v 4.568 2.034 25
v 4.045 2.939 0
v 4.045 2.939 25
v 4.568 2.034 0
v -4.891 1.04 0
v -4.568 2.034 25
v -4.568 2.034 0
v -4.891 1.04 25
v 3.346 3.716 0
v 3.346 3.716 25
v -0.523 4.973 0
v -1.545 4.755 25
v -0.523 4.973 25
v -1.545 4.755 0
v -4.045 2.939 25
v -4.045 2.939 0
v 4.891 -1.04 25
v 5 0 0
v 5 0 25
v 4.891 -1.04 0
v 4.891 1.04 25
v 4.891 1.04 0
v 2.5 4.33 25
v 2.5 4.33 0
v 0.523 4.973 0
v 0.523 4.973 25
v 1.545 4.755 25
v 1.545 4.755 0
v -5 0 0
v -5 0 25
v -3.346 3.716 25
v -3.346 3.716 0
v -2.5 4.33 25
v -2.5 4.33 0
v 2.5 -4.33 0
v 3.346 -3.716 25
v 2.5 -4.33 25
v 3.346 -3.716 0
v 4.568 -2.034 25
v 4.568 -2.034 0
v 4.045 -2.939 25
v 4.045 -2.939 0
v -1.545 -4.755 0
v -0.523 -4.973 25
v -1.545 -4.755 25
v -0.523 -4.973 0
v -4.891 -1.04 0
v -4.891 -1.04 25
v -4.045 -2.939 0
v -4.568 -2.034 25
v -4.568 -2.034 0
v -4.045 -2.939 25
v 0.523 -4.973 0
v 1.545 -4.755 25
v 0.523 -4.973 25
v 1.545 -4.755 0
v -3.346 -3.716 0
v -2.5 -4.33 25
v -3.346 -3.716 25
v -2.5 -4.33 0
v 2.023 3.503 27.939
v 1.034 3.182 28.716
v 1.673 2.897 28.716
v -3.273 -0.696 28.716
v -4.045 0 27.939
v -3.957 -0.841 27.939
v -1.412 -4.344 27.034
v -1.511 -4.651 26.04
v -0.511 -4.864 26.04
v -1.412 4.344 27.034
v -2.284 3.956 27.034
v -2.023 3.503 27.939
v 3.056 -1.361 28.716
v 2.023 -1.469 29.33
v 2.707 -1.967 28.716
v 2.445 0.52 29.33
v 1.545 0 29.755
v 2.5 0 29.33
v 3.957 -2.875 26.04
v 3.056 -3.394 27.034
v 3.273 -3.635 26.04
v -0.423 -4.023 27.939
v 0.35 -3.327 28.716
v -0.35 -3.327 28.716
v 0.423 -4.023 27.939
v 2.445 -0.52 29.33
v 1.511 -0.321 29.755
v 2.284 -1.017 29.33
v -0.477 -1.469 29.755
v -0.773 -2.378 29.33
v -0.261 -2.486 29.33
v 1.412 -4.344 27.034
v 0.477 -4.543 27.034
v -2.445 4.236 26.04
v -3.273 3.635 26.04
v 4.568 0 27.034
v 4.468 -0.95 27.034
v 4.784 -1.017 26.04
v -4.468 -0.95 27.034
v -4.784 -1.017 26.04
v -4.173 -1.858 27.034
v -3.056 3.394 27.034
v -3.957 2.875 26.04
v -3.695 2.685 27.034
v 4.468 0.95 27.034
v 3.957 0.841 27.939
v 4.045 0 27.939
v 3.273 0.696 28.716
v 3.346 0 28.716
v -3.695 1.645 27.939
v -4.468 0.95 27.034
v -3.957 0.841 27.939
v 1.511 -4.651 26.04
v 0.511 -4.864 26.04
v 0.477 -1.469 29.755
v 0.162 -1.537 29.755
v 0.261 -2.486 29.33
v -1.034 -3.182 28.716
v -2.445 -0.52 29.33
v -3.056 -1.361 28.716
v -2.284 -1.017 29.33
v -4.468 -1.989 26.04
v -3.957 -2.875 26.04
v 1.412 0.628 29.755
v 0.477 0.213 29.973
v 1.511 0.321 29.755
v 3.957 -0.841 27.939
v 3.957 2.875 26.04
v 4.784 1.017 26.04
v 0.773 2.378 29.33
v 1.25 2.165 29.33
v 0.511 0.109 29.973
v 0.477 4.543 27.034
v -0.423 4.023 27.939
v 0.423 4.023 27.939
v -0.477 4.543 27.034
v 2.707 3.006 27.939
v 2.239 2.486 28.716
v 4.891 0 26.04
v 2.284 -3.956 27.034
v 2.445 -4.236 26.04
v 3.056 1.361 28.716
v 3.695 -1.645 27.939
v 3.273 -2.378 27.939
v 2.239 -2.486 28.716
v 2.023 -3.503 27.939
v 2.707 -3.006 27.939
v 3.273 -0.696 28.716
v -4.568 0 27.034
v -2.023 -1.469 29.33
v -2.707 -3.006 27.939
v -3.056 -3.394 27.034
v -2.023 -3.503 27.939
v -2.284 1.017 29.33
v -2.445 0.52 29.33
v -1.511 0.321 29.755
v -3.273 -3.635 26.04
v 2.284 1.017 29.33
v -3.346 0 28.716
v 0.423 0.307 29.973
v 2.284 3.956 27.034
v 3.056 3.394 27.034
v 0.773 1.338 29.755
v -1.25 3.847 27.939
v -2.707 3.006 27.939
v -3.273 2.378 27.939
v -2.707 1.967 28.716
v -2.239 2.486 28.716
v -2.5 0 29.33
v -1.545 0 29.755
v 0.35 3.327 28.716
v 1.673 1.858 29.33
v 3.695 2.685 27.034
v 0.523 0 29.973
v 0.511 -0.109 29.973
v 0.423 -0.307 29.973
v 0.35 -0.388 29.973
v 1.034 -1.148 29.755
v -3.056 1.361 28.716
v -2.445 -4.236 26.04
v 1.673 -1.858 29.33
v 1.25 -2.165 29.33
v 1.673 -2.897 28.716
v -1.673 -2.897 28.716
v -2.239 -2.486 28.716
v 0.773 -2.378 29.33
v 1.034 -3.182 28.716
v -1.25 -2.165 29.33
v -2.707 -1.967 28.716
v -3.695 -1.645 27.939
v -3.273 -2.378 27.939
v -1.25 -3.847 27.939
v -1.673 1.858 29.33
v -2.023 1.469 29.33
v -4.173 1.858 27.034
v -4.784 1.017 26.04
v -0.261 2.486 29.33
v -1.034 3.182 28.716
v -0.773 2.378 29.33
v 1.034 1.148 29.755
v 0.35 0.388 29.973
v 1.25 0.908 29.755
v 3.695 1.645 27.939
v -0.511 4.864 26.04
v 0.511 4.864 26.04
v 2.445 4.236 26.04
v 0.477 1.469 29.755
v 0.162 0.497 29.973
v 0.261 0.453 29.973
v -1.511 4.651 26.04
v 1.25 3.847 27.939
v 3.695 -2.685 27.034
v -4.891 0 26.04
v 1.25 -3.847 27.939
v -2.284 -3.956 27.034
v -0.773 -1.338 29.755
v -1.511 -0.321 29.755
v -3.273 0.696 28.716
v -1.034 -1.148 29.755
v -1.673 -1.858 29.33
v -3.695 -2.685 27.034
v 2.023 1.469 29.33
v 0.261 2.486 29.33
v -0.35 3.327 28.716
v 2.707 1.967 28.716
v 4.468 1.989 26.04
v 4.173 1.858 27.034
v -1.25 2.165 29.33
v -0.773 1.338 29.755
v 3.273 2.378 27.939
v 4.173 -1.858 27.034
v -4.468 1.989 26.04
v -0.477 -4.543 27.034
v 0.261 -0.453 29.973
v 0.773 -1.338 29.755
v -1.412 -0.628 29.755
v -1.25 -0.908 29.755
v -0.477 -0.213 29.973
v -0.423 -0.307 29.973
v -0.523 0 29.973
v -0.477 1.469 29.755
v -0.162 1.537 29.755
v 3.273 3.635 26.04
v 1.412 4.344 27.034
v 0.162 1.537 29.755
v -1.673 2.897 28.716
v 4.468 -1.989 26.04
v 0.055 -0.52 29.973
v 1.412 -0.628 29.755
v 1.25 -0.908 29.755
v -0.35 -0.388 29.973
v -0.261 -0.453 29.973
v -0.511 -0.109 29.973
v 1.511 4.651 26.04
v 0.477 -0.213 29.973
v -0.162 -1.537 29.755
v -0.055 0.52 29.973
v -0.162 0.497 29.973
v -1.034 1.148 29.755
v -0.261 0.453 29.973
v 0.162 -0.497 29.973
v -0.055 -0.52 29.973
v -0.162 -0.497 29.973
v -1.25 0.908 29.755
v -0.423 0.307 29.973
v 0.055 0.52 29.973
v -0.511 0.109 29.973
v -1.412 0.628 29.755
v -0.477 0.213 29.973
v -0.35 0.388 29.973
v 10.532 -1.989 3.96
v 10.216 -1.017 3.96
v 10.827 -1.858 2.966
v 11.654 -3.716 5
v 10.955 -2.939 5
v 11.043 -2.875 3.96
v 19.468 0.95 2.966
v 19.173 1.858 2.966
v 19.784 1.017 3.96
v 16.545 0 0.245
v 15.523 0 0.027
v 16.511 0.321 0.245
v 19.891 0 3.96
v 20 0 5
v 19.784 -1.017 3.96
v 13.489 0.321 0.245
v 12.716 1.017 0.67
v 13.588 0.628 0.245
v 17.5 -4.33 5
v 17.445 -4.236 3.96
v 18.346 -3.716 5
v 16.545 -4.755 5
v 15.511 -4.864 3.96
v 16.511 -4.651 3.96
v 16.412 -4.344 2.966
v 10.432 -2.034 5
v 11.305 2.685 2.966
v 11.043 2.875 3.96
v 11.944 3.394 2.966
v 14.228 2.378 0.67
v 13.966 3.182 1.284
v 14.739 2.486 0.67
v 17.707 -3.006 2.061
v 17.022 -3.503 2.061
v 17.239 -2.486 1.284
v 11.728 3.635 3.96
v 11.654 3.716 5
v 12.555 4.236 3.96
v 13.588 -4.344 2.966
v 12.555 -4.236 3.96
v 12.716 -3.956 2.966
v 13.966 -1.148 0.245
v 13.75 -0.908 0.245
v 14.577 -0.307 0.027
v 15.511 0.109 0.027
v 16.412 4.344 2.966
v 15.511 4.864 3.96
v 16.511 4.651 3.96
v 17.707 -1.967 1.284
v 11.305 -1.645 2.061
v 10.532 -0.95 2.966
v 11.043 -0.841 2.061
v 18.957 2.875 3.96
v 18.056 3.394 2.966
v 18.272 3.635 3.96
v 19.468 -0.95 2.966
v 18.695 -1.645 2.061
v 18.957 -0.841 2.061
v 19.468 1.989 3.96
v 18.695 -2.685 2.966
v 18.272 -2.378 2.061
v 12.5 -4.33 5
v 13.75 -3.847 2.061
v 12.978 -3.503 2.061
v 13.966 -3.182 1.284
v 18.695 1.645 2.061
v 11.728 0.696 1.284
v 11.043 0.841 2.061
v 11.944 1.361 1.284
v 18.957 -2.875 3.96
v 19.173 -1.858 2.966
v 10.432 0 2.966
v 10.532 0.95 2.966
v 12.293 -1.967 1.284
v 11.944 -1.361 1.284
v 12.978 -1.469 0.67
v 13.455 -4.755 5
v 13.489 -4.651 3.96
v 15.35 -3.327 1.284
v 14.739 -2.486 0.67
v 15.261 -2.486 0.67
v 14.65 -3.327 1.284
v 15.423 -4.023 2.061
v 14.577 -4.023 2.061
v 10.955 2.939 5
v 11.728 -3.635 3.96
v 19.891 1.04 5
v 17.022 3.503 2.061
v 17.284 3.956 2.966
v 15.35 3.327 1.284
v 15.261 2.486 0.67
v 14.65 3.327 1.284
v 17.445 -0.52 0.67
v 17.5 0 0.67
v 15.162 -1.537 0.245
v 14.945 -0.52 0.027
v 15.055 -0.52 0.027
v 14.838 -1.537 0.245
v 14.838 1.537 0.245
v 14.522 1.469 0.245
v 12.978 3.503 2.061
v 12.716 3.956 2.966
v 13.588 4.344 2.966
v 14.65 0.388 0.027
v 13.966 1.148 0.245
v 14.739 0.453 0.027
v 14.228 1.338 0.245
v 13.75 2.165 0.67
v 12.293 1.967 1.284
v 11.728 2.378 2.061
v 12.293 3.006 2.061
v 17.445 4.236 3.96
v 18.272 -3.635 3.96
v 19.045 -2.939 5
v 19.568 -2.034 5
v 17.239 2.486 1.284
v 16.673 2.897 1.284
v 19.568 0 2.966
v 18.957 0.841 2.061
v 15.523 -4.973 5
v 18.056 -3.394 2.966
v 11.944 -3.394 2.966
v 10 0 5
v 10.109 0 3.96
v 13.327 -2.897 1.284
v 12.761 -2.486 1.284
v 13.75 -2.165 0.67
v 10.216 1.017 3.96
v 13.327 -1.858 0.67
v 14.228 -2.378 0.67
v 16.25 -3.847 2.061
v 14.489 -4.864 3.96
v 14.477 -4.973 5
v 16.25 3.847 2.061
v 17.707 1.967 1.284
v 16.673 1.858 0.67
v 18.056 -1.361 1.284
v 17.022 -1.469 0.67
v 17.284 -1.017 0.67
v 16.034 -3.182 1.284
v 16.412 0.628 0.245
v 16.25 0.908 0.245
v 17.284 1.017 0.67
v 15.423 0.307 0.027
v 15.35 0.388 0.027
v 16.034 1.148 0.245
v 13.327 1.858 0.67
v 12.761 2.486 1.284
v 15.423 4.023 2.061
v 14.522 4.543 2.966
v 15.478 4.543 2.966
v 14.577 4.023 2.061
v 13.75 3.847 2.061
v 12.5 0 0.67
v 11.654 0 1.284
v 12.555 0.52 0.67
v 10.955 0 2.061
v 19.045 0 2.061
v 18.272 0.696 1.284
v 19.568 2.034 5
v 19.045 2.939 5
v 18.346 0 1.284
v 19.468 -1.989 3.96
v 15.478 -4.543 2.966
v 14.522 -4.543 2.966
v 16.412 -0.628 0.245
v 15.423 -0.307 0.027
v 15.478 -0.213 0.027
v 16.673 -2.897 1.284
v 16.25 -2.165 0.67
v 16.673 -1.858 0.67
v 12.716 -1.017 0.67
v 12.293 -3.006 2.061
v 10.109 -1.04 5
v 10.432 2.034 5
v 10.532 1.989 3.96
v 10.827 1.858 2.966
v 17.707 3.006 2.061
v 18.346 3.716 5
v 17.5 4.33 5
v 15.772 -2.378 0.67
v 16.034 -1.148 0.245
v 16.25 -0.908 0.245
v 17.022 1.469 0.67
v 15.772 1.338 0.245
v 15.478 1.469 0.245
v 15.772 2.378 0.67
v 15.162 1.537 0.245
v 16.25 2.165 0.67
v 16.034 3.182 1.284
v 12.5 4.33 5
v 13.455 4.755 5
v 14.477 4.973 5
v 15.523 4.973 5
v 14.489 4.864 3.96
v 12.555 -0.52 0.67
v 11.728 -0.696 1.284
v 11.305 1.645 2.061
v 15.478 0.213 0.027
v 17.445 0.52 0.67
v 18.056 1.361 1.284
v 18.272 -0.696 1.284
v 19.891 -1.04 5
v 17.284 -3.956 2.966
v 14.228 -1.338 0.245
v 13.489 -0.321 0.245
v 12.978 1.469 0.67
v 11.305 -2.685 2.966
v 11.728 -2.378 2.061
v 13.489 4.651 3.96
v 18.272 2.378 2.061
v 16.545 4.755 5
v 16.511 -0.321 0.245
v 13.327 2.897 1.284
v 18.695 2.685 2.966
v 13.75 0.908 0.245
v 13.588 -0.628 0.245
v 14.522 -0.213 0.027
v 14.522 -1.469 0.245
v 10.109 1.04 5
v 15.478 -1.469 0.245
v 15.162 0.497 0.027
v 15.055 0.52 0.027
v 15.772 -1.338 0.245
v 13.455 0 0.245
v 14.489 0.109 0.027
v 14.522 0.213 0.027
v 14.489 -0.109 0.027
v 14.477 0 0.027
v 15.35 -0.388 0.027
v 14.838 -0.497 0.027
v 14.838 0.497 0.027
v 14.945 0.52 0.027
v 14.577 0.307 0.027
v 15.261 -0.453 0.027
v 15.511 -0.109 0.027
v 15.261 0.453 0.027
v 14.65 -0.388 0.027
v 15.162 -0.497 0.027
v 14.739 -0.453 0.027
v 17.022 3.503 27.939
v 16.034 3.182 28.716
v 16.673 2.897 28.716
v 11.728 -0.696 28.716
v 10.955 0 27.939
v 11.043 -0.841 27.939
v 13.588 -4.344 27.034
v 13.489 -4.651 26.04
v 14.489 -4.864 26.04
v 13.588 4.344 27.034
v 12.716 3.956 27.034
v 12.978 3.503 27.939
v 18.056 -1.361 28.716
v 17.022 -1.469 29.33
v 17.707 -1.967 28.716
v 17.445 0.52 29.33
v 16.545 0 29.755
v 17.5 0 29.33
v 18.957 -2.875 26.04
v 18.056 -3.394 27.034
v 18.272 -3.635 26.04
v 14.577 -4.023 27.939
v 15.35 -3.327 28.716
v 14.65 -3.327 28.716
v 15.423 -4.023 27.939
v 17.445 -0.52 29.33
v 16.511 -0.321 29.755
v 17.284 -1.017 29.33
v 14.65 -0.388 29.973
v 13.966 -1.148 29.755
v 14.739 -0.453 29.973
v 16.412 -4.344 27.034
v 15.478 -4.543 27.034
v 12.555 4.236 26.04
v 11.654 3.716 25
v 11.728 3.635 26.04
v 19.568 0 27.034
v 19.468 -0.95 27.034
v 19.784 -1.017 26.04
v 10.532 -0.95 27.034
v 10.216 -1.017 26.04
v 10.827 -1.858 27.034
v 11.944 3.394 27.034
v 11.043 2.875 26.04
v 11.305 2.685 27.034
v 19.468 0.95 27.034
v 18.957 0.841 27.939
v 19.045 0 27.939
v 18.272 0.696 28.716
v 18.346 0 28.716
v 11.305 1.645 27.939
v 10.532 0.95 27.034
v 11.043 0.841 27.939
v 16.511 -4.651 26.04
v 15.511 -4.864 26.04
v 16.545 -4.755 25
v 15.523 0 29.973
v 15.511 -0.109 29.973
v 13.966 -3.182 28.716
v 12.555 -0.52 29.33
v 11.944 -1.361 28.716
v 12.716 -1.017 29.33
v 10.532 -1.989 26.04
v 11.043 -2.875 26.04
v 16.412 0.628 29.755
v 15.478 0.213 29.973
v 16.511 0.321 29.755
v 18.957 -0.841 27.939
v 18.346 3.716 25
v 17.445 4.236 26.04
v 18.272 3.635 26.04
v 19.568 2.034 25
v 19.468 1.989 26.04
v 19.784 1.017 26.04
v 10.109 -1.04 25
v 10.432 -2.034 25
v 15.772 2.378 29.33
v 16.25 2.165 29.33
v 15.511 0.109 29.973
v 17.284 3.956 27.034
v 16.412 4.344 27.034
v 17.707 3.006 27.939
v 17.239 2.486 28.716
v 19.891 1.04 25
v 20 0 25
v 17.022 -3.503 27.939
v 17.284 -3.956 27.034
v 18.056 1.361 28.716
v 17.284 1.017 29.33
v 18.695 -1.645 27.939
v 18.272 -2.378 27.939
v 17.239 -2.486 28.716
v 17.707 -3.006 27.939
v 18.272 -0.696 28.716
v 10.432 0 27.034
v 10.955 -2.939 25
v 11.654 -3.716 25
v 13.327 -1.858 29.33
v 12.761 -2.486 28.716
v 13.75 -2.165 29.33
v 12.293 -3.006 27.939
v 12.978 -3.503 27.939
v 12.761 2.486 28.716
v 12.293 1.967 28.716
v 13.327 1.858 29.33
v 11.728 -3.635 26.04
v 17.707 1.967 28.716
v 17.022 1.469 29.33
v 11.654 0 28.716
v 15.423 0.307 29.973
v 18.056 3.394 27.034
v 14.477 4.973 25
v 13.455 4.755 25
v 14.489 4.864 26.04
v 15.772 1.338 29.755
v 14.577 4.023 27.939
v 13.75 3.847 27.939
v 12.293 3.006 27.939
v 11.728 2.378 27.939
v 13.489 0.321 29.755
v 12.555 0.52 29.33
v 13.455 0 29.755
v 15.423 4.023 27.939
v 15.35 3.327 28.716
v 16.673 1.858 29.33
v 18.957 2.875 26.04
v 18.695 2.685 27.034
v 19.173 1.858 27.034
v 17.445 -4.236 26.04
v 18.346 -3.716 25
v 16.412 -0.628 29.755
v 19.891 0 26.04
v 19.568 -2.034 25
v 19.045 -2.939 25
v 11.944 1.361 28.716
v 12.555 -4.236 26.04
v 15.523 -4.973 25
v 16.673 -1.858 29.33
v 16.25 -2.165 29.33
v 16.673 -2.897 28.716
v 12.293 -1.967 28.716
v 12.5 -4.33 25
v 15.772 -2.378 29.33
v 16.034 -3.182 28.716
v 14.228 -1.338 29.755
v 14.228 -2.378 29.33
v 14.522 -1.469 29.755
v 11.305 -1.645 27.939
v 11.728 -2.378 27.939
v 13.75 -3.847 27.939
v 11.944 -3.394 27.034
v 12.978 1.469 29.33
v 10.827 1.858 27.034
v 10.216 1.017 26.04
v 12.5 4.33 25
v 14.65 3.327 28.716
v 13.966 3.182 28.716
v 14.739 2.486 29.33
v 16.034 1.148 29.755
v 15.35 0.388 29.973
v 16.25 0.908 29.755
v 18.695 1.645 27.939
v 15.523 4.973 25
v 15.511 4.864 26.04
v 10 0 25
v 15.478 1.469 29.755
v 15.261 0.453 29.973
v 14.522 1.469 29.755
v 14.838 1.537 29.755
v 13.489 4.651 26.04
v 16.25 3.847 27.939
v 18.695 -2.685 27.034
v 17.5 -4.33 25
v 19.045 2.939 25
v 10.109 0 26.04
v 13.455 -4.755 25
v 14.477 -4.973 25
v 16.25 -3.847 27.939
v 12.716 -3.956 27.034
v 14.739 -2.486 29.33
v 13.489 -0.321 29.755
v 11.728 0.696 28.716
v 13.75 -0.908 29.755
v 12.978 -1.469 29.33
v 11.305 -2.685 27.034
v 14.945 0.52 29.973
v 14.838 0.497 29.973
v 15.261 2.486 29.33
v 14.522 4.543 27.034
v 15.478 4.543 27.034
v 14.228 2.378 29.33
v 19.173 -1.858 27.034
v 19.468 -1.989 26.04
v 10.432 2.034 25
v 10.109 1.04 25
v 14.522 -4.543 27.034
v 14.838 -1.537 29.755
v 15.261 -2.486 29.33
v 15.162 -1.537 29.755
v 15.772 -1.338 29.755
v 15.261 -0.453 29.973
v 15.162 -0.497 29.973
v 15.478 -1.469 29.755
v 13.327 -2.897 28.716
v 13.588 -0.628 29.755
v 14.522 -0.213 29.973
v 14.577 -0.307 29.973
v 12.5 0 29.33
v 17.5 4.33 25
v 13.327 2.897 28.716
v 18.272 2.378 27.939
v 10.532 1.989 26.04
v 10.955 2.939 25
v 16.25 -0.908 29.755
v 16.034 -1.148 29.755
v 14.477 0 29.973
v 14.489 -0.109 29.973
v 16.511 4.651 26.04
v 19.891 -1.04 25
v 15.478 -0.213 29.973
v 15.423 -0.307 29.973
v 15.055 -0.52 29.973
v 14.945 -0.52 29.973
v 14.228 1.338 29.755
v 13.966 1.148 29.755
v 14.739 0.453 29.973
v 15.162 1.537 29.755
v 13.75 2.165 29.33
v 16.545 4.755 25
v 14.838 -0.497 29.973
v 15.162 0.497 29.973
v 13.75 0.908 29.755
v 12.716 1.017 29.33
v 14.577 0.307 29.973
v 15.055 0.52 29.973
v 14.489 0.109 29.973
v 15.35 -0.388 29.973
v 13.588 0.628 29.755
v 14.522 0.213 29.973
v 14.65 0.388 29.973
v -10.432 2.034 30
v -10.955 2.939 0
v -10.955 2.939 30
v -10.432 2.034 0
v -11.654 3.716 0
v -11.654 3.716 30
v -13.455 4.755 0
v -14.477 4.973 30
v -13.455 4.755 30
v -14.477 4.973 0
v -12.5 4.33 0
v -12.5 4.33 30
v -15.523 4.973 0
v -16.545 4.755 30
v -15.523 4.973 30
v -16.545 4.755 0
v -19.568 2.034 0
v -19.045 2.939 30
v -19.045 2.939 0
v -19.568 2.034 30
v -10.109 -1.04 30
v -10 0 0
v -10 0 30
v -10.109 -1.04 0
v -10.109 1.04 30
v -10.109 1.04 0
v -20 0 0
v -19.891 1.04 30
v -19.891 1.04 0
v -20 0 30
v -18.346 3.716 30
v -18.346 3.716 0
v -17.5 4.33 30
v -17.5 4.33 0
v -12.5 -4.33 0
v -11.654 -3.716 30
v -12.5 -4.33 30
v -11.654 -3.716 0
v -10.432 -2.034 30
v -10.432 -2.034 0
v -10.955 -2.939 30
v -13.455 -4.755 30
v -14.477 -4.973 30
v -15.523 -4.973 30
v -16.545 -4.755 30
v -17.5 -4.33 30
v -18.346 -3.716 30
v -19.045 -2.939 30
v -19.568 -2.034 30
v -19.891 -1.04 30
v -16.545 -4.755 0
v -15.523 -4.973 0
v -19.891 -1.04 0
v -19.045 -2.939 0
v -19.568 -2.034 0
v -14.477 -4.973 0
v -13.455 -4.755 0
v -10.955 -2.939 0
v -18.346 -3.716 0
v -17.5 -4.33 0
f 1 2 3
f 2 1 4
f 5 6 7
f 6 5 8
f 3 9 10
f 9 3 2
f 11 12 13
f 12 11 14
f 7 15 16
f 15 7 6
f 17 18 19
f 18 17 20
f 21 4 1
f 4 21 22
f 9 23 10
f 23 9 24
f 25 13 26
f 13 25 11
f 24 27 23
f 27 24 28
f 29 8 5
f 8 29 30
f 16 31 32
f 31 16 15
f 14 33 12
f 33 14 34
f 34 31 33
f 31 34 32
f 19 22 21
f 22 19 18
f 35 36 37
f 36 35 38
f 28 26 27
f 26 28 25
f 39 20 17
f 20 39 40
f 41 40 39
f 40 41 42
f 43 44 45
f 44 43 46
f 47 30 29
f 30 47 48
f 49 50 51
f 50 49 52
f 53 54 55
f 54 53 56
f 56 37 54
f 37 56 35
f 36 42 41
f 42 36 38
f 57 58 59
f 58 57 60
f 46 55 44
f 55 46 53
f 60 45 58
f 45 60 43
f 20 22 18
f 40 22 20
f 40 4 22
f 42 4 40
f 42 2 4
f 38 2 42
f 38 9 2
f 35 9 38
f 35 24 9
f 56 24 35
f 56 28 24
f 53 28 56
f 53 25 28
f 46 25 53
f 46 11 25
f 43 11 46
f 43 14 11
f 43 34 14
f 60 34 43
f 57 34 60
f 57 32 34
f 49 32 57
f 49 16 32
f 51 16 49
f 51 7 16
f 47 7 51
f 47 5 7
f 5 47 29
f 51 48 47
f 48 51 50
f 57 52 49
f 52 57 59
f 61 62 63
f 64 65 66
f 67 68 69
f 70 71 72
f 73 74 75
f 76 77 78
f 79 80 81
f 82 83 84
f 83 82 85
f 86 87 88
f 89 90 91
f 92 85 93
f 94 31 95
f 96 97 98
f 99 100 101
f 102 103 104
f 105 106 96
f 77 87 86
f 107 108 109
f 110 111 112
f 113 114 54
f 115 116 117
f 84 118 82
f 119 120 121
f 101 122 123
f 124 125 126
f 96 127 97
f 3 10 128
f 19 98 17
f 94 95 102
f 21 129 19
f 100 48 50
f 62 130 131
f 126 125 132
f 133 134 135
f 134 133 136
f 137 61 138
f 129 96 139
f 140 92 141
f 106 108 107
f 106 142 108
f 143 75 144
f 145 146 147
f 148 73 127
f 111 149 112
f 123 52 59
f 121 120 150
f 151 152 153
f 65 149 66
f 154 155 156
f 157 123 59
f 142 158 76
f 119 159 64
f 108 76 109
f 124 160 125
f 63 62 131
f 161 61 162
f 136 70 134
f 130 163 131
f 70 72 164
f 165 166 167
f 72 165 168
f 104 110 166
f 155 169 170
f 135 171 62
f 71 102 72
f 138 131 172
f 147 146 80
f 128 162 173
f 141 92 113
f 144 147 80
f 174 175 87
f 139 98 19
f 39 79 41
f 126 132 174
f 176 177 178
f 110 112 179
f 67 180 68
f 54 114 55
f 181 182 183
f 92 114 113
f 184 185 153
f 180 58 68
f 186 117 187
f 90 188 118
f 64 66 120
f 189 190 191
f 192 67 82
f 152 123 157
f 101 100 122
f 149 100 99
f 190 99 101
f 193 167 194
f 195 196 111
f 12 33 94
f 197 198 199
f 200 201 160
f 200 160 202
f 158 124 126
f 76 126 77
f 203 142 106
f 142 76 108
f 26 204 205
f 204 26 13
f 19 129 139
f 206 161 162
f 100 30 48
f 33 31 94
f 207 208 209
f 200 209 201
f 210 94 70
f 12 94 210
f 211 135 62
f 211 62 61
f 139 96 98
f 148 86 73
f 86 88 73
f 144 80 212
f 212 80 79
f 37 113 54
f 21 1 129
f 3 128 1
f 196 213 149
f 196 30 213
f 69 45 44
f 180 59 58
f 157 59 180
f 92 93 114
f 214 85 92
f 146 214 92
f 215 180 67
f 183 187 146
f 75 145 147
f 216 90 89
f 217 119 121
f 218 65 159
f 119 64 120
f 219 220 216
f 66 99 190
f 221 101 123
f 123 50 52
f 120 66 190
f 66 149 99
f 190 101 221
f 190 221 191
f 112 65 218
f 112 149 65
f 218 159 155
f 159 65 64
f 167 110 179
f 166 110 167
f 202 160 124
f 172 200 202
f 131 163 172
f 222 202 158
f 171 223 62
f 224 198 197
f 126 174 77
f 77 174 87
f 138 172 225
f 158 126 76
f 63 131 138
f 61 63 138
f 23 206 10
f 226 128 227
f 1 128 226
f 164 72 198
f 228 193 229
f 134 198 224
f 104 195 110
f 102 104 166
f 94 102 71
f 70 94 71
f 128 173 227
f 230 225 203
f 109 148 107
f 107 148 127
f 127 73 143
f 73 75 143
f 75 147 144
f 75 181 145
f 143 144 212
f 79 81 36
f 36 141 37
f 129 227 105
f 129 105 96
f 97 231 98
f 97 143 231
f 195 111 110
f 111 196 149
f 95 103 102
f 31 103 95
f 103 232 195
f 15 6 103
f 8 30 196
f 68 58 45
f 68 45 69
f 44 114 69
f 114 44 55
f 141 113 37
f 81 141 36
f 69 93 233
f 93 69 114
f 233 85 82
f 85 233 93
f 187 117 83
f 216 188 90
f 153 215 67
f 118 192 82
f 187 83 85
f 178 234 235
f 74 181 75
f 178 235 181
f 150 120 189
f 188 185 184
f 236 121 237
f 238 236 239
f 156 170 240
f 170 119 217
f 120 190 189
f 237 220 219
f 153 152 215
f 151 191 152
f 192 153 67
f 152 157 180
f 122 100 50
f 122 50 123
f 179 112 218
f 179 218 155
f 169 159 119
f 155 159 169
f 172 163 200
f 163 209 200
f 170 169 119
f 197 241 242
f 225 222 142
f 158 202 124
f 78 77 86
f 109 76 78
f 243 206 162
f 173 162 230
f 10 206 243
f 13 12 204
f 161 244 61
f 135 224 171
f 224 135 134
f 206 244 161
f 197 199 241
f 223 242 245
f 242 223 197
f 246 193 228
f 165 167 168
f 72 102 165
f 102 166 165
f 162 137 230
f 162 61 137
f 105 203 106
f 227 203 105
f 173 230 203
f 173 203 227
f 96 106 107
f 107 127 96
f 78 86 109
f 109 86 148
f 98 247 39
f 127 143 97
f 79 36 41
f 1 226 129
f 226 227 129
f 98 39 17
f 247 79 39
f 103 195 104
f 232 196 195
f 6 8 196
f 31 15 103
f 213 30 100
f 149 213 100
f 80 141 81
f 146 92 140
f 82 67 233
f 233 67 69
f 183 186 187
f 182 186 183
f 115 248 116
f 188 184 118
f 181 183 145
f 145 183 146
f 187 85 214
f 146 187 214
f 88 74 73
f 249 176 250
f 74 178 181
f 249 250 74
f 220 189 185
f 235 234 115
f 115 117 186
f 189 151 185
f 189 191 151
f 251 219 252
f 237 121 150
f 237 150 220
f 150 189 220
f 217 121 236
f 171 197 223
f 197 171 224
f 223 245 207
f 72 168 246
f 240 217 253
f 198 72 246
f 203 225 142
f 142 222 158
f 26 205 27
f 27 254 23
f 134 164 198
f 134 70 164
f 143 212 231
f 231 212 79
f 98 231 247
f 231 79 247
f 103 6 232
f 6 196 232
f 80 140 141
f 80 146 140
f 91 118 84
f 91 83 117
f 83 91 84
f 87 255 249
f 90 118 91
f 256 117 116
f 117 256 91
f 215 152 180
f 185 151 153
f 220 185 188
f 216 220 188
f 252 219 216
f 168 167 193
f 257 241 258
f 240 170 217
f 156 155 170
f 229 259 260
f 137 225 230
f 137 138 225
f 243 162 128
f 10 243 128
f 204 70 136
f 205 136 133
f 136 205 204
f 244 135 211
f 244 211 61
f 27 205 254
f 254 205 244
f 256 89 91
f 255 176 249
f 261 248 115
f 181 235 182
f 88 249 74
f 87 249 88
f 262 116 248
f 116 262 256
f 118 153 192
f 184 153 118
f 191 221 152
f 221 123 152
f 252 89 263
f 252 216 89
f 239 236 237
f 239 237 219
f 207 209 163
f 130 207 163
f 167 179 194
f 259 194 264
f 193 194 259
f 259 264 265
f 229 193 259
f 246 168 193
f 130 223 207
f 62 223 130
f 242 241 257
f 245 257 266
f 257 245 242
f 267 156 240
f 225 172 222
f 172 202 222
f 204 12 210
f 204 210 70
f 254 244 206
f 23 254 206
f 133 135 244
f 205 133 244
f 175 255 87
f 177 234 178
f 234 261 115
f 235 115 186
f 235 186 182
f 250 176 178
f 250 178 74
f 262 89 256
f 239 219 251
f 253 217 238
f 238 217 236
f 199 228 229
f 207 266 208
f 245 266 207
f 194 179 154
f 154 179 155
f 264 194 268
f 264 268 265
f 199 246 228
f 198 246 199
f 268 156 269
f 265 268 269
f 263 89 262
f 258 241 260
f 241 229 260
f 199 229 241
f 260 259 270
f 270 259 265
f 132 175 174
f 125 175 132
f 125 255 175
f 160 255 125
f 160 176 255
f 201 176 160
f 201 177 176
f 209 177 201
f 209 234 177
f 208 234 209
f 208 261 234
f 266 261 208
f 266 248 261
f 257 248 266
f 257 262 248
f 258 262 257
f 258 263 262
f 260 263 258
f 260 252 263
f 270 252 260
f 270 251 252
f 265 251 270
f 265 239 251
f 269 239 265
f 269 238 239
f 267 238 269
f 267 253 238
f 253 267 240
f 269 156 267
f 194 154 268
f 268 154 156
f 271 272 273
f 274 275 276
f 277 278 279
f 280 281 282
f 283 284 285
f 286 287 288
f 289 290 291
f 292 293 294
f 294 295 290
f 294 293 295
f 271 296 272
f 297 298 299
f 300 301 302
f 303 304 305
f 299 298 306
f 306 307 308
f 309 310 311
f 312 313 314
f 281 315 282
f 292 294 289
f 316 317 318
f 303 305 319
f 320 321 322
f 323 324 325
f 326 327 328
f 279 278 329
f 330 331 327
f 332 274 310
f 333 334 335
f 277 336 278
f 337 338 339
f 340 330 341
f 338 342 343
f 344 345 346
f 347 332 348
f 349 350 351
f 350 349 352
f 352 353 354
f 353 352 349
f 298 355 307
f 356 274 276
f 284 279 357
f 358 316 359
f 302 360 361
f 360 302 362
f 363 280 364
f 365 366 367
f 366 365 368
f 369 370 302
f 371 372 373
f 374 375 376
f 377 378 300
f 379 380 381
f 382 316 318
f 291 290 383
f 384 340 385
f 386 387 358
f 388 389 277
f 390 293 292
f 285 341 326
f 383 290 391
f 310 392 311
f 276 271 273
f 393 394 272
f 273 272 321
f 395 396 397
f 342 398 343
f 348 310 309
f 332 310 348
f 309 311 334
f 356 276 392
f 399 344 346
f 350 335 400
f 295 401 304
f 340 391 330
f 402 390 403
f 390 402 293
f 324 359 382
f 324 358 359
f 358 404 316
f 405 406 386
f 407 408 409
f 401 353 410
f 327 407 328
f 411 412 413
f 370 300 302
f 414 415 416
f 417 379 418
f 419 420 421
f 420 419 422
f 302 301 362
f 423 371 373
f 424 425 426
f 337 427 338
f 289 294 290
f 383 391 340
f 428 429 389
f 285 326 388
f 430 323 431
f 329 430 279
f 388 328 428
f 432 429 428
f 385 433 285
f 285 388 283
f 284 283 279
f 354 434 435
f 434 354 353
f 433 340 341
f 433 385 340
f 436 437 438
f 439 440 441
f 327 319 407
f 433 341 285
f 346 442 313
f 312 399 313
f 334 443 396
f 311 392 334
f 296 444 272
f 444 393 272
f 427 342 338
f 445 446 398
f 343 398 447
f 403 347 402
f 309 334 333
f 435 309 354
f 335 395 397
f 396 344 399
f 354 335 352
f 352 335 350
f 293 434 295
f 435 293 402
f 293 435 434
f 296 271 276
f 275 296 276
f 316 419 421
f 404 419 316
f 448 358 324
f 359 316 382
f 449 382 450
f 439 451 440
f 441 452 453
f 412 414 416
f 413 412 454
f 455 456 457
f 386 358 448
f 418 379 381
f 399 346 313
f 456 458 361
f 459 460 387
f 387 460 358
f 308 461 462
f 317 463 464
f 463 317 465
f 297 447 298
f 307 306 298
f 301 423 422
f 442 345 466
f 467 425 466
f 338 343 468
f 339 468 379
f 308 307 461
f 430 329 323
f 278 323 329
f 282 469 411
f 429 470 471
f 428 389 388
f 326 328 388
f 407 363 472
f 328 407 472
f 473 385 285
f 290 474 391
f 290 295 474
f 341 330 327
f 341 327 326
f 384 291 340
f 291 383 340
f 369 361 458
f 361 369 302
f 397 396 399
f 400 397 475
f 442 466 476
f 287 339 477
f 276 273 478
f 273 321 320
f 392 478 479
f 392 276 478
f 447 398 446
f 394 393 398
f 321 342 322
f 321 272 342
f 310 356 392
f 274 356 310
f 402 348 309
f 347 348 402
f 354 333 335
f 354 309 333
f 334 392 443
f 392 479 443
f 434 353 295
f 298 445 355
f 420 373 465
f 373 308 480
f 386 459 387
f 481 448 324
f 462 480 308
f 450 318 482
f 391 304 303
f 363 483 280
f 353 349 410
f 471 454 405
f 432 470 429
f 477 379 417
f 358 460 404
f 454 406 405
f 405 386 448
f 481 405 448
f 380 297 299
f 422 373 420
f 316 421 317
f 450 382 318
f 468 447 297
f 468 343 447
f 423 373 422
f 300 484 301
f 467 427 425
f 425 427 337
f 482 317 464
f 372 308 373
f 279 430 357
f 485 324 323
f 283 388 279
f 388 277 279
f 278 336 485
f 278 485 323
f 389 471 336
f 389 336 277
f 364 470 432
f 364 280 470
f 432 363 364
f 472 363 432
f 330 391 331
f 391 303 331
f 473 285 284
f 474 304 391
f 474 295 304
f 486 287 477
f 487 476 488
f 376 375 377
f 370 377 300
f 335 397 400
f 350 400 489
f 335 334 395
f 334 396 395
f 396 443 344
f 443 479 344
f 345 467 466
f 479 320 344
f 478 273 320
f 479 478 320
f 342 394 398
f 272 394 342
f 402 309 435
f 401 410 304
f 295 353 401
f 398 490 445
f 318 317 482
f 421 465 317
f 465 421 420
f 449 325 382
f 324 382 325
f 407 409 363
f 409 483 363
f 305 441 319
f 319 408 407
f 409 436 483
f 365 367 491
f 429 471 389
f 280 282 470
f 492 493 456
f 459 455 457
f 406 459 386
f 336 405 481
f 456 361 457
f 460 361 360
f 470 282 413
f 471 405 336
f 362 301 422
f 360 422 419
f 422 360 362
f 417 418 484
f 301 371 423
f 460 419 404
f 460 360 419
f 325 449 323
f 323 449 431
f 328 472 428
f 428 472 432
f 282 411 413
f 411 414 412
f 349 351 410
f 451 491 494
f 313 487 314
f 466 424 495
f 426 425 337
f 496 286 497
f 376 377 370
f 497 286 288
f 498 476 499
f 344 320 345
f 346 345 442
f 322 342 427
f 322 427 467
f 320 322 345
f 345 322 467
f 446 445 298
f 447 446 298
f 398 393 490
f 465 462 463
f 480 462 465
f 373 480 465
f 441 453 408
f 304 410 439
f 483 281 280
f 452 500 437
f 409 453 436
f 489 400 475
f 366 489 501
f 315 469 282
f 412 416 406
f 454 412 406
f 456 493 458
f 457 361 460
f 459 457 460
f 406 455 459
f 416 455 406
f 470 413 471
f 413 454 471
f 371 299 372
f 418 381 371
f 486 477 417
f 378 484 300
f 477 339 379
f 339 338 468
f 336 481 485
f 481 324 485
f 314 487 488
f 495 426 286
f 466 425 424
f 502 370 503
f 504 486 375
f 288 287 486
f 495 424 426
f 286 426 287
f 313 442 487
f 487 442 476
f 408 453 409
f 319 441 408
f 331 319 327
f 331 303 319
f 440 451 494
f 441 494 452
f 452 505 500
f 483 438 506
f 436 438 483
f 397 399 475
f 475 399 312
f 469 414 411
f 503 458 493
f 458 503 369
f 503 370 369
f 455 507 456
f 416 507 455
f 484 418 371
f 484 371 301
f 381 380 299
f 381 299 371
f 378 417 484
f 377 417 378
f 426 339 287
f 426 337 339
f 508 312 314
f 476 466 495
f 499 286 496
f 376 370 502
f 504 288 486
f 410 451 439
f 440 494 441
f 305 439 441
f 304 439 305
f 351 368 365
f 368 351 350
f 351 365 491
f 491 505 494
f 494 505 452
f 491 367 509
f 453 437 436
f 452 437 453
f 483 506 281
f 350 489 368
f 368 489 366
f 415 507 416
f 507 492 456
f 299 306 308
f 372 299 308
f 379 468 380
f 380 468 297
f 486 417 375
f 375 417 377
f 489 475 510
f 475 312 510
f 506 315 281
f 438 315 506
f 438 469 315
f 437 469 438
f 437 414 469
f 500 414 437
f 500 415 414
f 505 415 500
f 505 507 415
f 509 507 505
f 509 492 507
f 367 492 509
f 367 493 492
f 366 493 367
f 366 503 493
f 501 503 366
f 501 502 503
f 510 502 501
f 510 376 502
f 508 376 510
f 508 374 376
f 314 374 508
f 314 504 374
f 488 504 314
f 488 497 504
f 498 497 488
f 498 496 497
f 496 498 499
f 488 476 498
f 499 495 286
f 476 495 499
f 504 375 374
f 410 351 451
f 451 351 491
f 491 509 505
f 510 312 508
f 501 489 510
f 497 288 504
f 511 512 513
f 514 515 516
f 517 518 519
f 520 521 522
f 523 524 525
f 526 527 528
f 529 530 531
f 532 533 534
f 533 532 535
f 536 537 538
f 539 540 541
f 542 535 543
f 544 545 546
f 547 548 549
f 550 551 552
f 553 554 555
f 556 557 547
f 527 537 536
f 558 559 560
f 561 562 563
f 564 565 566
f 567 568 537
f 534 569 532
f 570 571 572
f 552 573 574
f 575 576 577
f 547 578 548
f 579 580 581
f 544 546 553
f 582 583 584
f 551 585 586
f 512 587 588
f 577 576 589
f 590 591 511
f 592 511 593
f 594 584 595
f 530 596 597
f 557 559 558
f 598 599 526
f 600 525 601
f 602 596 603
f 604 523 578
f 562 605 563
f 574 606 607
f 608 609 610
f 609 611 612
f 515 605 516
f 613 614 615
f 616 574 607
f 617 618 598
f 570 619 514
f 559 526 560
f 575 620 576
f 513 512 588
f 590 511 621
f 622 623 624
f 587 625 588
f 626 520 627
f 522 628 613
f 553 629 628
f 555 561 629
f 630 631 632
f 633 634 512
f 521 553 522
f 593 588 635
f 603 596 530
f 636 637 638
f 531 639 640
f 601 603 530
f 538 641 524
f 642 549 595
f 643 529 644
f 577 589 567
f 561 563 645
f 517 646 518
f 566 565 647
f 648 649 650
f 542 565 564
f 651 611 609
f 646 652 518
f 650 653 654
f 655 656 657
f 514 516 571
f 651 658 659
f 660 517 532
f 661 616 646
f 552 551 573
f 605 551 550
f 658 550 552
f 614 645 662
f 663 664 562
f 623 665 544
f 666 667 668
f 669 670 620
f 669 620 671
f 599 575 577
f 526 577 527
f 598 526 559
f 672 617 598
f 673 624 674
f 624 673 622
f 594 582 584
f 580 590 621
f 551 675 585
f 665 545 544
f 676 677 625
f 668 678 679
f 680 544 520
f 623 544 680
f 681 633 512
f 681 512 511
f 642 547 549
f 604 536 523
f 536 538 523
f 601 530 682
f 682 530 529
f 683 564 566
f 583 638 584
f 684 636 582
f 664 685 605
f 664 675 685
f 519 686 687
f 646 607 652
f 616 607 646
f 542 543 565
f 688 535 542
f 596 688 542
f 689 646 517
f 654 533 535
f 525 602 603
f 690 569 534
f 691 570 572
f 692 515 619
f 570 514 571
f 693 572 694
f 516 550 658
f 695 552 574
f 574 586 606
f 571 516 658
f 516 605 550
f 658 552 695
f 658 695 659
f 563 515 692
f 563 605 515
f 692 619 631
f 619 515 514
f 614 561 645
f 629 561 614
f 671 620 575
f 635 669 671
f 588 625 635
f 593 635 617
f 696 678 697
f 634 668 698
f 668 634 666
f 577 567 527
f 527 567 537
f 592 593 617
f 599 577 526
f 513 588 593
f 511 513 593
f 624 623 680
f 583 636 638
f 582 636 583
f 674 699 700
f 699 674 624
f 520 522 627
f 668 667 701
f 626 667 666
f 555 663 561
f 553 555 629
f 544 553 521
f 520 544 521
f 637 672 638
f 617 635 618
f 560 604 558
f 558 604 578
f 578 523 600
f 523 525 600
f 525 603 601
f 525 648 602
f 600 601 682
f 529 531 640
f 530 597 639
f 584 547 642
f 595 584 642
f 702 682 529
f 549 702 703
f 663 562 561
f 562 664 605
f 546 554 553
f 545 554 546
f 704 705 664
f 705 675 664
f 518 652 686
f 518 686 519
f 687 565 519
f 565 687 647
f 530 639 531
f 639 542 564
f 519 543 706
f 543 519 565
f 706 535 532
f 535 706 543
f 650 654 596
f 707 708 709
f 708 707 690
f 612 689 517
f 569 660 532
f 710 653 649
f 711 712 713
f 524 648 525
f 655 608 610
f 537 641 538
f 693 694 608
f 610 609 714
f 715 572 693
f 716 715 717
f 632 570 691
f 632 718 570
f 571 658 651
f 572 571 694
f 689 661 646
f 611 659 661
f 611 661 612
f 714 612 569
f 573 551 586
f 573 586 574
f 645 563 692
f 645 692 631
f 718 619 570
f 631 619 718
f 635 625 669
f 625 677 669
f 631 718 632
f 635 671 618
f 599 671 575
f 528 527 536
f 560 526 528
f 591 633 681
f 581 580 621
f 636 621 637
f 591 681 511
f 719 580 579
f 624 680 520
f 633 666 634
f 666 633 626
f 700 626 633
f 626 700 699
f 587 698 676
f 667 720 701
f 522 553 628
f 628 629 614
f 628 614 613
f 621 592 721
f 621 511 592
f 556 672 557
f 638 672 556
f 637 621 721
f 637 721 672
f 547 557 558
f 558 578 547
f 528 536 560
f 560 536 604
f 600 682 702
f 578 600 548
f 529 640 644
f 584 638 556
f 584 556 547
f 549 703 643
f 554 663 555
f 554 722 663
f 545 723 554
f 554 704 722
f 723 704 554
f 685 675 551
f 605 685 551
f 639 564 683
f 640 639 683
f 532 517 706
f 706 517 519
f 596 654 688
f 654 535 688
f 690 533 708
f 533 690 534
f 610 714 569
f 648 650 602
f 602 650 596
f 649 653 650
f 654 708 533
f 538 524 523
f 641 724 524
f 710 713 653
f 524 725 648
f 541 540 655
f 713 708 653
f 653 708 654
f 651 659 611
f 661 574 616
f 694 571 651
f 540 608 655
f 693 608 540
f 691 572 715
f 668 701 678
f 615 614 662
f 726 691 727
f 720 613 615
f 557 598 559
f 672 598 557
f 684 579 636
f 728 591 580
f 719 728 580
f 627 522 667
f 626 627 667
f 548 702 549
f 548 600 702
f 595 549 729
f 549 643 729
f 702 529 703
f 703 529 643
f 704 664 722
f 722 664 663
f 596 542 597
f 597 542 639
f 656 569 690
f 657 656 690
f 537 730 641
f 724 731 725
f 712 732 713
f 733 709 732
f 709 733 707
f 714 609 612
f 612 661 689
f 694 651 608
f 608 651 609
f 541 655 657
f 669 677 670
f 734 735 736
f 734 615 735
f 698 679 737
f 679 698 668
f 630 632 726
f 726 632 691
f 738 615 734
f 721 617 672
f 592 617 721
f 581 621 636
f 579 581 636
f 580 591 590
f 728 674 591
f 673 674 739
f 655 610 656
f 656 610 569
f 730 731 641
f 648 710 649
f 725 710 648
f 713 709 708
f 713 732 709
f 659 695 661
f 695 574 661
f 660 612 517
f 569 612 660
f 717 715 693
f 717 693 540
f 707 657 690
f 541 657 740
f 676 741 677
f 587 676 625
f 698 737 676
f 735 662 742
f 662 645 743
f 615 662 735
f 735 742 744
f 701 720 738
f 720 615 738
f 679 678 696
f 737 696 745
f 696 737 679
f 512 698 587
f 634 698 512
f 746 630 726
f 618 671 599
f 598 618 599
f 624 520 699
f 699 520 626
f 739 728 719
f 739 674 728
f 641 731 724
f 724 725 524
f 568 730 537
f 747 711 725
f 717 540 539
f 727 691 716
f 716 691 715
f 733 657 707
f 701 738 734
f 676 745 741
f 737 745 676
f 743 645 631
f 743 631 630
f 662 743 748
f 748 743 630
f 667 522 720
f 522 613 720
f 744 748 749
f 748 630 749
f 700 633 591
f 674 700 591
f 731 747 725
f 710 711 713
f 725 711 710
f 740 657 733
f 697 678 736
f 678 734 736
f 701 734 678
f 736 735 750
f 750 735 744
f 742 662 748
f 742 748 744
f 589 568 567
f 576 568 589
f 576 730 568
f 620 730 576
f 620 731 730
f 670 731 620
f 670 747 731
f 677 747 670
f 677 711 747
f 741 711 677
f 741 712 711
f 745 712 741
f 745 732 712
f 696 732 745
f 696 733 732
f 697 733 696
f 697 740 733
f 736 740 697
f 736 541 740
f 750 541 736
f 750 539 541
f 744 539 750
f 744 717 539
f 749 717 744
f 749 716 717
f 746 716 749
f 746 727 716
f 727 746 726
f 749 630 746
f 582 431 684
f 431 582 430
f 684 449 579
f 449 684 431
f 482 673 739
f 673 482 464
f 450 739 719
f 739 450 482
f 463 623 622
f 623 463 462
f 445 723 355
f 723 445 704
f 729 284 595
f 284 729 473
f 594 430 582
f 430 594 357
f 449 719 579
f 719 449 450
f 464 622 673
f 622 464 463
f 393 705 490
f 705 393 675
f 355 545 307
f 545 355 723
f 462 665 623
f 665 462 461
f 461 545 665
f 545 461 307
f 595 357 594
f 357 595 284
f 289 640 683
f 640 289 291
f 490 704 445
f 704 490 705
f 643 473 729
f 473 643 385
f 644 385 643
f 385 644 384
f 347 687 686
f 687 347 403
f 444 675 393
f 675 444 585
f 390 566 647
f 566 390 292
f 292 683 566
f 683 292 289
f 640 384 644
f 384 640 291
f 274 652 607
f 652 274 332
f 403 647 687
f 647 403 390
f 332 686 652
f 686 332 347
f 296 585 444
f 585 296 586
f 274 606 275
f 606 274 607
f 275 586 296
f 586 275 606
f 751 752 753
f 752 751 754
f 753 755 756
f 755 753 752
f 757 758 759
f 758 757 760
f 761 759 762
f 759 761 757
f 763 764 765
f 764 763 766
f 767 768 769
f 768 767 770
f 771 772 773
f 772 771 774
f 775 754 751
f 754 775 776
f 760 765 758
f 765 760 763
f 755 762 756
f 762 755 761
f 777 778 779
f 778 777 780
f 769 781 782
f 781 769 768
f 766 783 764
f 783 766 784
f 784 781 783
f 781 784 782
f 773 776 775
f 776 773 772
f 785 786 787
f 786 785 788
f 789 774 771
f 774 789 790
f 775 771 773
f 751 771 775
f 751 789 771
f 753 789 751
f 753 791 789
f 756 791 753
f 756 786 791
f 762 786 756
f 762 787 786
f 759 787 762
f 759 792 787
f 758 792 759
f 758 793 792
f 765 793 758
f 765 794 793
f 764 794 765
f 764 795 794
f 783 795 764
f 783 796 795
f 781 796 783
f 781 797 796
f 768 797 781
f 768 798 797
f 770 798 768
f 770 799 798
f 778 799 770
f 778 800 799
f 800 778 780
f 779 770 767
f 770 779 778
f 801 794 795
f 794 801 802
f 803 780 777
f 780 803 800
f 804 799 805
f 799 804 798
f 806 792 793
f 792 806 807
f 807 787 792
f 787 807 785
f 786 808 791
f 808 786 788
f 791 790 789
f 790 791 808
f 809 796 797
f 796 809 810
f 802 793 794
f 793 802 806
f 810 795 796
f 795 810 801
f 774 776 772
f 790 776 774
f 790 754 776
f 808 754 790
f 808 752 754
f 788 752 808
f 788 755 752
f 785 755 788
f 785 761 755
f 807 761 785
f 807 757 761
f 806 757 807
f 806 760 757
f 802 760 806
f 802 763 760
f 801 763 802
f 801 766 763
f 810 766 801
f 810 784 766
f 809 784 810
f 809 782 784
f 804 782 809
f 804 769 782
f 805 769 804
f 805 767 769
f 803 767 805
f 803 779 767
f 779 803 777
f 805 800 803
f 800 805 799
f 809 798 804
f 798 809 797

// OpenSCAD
//-- Cilindro redondeado en las tapas
//-- Parametros:
//-- r: radio del cilindro
//-- h: Altura del cilindro
//-- center : [true, false], centrar el cilindro
//-- both: [true, false]
//--    true: Redondear ambas tapas (superior e inferior)
//--    false: solo se redondea la tapa superior
module rcylinder(r = 4, 
                 h = 20, 
                 center = false, 
                 both = false, $fn = 30)
{

  //-- Calcular la altura del cilindro interior
  //-- Si redondeo por las dos tapas, vale h - 2*r
  //-- si solo una tapa entonces h - r
  hc = (both == true) ? h - 2 * r : h - r;
  
  //-- Calcular la traslacion para centrar el cilindro
  posc = (center == true) ? 0 : h/2;
  
  //-- Aplicar traslaciopn para el centrado
  translate([0, 0, posc]) 
  
    //-- Cilindro con ambas tapas redondeadas
    //-- Se pone un cilindro de altura hc y una esfera
    //-- en la parte superior y otra en la inferior
    if (both == true) {
      cylinder(r = r, h = hc, center = true, $fn = $fn);
      
      //-- Esferas superior e inferior
      for (i = [-1, 1])
        translate([0, 0, i * hc / 2])
          sphere(r = r);
          
    }
    //-- Cilindro con tapa superior redondeada
    else
      //-- Centrar la figura
      translate([0, 0, -h/2]) {
      
        //-- Cilindro + esfera
        cylinder(r = r, h = hc, $fn = $fn);
          translate([0, 0, hc]) sphere(r = r, $fn = $fn);
      }
        
}

//-- Parametros para los ejemplos
r = 5;
h = 30;
center = false;
$fn = 30;

//-- Cilindro normal
translate([-3*r, 0, 0])  
  cylinder(r = r, h = h, center = center, $fn = $fn);

//-- Cilindro con tapa superior redondeada
rcylinder(r = r, h = h, both = false, center = center, $fn = $fn);

//-- Cilindro con ambas tapas redondeadas
translate([3*r, 0, 0])  
  rcylinder(r = r, h = h, both = true, center = center, $fn = $fn);
  
*hull() 
{
translate([-5, -10, 0])
rcylinder(r=3, h=30, both=true, center=true, $fn=30); 
translate([-5, 10, 0])
rcylinder(r=3, h=30, both=true, center=true, $fn=30); 
translate([5, -10, 0])
rcylinder(r=3, h=30, both=true, center=true, $fn=30); 
translate([5, 10, 0])
rcylinder(r=3, h=30, both=true, center=true, $fn=30); 
}
